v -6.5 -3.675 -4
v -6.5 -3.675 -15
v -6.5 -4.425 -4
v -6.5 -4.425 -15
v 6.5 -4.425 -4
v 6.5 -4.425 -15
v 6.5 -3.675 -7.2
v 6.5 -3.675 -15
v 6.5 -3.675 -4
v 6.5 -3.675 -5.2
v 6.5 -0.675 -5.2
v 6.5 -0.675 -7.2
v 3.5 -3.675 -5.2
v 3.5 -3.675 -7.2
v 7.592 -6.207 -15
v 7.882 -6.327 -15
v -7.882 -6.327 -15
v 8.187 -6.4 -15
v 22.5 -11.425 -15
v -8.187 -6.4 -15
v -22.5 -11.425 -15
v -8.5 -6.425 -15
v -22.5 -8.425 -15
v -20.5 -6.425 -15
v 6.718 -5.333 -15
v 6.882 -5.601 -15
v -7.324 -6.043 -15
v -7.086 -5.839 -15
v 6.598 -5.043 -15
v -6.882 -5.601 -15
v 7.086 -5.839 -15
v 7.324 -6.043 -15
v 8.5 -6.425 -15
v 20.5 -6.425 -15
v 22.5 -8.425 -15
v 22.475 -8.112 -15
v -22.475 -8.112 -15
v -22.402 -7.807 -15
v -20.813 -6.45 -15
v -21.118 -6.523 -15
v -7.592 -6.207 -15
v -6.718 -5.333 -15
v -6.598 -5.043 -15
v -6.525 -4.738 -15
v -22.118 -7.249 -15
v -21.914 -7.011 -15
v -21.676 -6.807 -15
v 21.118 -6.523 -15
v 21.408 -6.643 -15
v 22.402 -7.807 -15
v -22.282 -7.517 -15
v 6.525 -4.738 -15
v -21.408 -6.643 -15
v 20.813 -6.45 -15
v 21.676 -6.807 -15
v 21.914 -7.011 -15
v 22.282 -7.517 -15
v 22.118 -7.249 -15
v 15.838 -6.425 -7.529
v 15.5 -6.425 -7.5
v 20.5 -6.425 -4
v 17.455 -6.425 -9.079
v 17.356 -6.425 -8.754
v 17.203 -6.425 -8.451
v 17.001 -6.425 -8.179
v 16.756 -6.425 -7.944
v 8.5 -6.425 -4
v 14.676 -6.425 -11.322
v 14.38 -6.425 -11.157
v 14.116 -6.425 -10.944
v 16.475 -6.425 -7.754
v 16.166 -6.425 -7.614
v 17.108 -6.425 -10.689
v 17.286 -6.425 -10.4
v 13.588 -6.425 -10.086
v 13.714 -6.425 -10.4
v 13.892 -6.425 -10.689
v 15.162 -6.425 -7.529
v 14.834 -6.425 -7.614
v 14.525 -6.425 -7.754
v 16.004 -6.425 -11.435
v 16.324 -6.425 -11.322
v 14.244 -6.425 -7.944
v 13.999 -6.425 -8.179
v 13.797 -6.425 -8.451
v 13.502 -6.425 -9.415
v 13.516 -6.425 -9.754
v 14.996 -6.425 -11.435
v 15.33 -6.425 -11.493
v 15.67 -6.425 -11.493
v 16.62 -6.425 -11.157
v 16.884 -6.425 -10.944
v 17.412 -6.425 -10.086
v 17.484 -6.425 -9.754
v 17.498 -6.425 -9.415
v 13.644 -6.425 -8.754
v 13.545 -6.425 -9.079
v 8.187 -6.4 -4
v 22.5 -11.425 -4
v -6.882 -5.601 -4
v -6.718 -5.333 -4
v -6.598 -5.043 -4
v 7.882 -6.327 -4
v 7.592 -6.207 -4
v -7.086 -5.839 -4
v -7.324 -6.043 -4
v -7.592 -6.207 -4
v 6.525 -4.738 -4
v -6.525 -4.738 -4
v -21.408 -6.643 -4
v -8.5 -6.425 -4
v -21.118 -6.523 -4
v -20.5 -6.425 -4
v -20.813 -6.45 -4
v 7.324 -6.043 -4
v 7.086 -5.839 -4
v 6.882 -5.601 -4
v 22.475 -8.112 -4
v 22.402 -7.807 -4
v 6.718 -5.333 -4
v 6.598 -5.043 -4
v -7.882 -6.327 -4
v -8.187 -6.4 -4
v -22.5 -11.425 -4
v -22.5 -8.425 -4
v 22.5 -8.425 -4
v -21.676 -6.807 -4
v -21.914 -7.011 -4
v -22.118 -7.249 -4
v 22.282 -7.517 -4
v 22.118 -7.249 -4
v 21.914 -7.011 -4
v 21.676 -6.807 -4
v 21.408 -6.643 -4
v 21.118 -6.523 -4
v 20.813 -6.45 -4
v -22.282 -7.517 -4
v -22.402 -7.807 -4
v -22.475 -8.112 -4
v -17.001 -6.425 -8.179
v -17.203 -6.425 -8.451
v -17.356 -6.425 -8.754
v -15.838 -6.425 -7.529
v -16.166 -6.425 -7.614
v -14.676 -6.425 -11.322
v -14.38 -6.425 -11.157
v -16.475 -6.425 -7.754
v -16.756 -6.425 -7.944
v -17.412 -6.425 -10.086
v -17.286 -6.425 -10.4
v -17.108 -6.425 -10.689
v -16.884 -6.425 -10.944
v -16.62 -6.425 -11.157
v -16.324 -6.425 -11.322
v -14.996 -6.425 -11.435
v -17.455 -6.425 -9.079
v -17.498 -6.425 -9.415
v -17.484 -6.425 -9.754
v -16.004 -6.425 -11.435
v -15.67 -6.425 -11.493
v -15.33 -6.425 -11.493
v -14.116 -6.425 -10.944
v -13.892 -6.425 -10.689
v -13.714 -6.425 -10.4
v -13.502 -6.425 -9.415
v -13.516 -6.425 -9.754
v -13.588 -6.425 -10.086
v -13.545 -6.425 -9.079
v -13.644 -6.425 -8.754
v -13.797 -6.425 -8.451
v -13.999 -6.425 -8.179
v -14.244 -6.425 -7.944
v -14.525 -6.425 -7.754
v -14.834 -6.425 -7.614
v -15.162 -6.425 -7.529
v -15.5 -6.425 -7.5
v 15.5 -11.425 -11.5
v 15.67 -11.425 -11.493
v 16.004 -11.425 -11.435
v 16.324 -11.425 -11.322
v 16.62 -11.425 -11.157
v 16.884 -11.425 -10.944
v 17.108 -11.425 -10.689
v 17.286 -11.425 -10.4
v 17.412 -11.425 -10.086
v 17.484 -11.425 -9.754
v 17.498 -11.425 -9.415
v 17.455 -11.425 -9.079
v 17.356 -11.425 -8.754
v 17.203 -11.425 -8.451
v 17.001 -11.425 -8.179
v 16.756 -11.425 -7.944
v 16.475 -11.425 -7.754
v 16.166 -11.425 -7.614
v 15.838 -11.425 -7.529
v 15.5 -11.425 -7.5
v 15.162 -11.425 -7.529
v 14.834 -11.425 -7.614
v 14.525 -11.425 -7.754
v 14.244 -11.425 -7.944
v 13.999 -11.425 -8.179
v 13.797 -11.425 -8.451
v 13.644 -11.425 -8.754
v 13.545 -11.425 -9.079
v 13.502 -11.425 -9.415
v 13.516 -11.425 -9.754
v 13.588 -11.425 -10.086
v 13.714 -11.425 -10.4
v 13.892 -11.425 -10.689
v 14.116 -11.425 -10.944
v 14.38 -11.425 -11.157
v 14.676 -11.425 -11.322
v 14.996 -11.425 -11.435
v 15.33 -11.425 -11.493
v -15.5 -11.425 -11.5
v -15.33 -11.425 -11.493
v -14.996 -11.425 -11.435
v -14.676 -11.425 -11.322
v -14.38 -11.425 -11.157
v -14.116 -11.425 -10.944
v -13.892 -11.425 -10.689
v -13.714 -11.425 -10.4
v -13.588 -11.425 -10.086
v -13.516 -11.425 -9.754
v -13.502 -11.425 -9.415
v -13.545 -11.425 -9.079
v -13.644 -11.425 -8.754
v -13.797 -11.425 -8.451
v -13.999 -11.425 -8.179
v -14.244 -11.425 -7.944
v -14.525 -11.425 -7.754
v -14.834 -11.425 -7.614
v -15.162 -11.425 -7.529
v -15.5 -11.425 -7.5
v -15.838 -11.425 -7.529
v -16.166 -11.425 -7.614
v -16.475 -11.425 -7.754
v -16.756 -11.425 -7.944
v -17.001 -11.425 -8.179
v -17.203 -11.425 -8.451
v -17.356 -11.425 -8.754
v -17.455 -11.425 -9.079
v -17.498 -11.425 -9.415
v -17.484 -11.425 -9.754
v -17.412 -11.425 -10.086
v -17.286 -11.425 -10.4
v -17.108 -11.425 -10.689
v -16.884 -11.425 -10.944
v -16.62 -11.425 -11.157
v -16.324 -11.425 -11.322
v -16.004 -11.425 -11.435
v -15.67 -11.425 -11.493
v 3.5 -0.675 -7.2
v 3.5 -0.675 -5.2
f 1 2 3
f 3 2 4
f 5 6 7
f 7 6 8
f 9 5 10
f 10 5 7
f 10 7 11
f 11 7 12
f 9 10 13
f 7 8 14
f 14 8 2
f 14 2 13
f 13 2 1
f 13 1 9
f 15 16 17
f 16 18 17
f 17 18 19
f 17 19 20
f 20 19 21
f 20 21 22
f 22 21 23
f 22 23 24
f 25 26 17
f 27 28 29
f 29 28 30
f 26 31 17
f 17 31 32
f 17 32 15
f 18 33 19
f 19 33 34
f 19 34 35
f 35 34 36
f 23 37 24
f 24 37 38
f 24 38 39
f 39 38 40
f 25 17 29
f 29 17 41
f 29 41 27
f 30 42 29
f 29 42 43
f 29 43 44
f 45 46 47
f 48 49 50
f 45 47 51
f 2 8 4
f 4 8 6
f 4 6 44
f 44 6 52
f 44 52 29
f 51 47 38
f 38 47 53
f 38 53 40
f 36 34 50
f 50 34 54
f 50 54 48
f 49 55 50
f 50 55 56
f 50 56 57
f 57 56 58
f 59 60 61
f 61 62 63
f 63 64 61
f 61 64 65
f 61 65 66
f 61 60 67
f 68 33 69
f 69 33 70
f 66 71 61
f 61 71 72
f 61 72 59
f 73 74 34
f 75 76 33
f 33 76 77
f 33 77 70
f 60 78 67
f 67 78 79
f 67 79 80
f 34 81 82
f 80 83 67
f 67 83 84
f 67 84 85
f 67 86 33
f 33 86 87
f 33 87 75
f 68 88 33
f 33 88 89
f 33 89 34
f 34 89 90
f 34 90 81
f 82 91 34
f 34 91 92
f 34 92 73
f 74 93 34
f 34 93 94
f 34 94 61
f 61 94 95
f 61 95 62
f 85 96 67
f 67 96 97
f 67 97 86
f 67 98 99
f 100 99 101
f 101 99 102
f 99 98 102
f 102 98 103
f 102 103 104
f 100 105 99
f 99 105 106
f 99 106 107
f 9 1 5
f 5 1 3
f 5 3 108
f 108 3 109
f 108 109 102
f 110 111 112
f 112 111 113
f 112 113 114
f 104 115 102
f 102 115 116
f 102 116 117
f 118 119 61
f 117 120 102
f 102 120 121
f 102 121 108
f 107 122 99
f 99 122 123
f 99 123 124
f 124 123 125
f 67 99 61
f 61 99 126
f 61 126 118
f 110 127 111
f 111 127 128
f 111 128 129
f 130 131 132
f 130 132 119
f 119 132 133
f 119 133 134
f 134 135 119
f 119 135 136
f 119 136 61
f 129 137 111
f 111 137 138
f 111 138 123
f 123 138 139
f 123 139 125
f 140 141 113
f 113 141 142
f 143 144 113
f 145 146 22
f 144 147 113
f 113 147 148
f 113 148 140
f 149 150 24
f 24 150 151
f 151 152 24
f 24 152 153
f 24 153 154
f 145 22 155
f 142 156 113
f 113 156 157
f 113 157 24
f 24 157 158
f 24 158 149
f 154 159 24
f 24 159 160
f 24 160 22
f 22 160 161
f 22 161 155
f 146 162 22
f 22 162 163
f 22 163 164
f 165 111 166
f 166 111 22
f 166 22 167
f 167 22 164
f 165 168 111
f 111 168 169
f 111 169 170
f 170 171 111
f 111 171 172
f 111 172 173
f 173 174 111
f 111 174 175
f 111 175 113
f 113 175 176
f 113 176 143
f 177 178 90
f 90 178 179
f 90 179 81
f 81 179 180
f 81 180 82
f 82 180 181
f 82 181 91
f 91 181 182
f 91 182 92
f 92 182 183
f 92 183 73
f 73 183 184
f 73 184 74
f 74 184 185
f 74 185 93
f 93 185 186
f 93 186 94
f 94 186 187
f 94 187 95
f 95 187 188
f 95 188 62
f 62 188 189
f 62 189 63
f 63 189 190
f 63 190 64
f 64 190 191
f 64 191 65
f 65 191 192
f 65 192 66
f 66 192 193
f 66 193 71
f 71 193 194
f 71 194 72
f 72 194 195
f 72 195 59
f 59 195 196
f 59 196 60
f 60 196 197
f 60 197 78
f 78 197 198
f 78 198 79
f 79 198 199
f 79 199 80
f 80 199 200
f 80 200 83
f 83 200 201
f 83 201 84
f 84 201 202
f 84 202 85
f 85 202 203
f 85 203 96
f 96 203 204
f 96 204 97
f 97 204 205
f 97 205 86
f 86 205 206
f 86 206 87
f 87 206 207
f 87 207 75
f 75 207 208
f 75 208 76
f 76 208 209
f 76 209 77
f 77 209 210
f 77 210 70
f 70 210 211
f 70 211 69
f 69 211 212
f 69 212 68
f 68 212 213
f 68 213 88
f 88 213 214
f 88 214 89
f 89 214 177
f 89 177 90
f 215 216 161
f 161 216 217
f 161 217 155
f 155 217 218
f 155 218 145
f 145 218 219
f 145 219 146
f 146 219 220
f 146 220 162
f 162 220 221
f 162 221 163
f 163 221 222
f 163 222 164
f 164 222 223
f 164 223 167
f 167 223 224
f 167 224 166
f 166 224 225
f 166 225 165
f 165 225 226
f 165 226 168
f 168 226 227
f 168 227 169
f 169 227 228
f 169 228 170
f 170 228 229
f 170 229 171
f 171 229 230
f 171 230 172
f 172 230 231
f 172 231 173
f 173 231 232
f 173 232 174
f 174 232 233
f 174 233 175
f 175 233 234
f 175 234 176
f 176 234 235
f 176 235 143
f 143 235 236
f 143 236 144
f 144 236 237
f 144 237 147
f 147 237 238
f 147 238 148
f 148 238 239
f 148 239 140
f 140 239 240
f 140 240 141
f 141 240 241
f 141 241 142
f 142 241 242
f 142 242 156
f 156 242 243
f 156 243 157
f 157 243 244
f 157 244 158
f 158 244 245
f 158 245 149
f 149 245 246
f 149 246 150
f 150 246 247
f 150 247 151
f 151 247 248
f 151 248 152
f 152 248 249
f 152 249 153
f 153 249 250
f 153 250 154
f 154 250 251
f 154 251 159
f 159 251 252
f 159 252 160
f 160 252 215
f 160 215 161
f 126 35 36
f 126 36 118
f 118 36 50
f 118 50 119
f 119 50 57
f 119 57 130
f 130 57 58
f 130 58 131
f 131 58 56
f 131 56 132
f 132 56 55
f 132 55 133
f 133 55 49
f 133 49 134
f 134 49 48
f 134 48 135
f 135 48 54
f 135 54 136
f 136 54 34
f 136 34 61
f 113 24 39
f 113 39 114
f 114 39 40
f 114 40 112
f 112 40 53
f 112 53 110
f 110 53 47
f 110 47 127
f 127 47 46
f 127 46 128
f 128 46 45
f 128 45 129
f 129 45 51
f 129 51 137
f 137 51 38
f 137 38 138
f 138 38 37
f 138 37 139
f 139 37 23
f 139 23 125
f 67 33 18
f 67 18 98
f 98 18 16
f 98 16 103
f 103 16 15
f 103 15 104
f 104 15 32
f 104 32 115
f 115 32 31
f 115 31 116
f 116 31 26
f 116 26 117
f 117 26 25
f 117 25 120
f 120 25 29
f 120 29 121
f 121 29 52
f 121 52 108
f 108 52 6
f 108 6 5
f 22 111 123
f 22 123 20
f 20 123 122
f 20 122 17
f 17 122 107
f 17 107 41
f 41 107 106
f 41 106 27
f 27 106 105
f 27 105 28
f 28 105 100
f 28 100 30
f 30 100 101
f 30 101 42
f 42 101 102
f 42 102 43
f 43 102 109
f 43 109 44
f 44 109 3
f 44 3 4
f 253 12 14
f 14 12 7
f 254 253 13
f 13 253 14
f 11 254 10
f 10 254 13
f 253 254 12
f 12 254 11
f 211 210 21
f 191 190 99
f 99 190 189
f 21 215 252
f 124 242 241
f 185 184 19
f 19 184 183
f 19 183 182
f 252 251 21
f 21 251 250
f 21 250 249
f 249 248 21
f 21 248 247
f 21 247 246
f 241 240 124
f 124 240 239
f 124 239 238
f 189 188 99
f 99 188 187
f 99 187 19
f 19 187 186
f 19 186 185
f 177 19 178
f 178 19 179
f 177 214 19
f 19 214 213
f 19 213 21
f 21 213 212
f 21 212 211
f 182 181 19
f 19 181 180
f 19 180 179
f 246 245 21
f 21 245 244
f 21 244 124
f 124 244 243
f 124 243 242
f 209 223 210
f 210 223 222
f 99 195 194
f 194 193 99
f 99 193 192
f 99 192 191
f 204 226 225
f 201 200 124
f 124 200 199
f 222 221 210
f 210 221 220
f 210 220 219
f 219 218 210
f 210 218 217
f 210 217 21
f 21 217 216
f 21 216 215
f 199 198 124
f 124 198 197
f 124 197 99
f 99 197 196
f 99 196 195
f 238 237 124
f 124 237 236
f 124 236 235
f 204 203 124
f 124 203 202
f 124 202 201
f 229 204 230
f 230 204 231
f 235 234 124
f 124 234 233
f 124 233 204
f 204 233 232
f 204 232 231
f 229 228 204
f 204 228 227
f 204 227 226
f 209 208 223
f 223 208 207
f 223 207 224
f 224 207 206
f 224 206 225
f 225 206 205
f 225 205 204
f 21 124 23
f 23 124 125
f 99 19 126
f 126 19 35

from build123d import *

# Parameters (mm, degrees)
BOSS_EXTRUDE1_DEPTH      = 2
SKETCH2_R                = 1
CUT_EXTRUDE1_DEPTH       = 11.827309223
CUT_EXTRUDE2_DEPTH       = 11.827309223
BOSS_EXTRUDE3_DEPTH      = 15
BOSS_EXTRUDE3_DEPTH_BACK = 2
SKETCH4_W                = 13
SKETCH4_H                = 4.75
SKETCH6_W                = 11
SKETCH6_H                = 2
BOSS_EXTRUDE4_DEPTH      = 16
SKETCH7_W                = 11
SKETCH7_H                = 2
BOSS_EXTRUDE5_DEPTH      = 16
SKETCH8_R                = 2
CUT_EXTRUDE3_DEPTH       = 31.850810362
FILLET5_R                = 2
FILLET6_R                = 2
FILLET7_R                = 2
FILLET8_R                = 2
SKETCH10_W               = 2
SKETCH10_H               = 16.939290608
CUT_EXTRUDE4_DEPTH       = 34.719143302
SKETCH11_W               = 13
SKETCH11_H               = 6
CUT_EXTRUDE5_DEPTH       = 28.45564605
SKETCH12_W               = 3
SKETCH12_H               = 2
BOSS_EXTRUDE6_DEPTH      = 3
SKETCH13_W               = 45
SKETCH13_H               = 11
SKETCH13_R               = 2
BOSS_EXTRUDE7_DEPTH      = 3


with BuildPart() as part:
    # Sketch1 → Boss-Extrude1 (new body)
    with BuildSketch(Plane.XY):
        with BuildLine():
            Line((-5.5, -8.425), (5.5, -8.425))
            ThreePointArc((5.5, -8.425), (6.207106781, -8.132106781), (6.5, -7.425))
            Line((6.5, -7.425), (6.5, 7.425))
            ThreePointArc((6.5, 7.425), (6.207106781, 8.132106781), (5.5, 8.425))
            Line((5.5, 8.425), (-5.5, 8.425))
            ThreePointArc((-5.5, 8.425), (-6.207106781, 8.132106781), (-6.5, 7.425))
            Line((-6.5, 7.425), (-6.5, -7.425))
            ThreePointArc((-6.5, -7.425), (-6.207106781, -8.132106781), (-5.5, -8.425))
        make_face()
    extrude(amount=BOSS_EXTRUDE1_DEPTH)

    # Sketch2 → Cut-Extrude1 (cut, through all)
    with BuildSketch(Plane.XY.offset(2)):
        with Locations((0, 6.75)):
            Circle(SKETCH2_R)
        with Locations((0, -2)):
            Circle(SKETCH2_R)
    extrude(amount=-CUT_EXTRUDE1_DEPTH, mode=Mode.SUBTRACT)

    # Sketch3 → Cut-Extrude2 (cut, through all)
    with BuildSketch(Plane.XY.offset(2)):
        with BuildLine():
            Line((1.8, 2.875), (1.8, 1.875))
            ThreePointArc((1.8, 1.875), (0, 0.075), (-1.8, 1.875))
            Line((-1.8, 1.875), (-1.8, 2.875))
            ThreePointArc((-1.8, 2.875), (0, 4.675), (1.8, 2.875))
        make_face()
    extrude(amount=-CUT_EXTRUDE2_DEPTH, mode=Mode.SUBTRACT)

    # Sketch4 → Boss-Extrude3 (add, two sides: drawn at the far end of the back side and taken through both)
    with BuildSketch(Plane(origin=(0, 0, 0), x_dir=(-1, 0, 0), z_dir=(0, 0, -1)).offset(-BOSS_EXTRUDE3_DEPTH_BACK)):
        with Locations((0, -6.05)):
            Rectangle(SKETCH4_W, SKETCH4_H)
    extrude(amount=BOSS_EXTRUDE3_DEPTH + BOSS_EXTRUDE3_DEPTH_BACK)

    # Sketch6 → Boss-Extrude4 (add)
    with BuildSketch(Plane(origin=(6.5, 0, 0), x_dir=(0, 0, -1), z_dir=(1, 0, 0))):
        with Locations((9.5, -7.425)):
            Rectangle(SKETCH6_W, SKETCH6_H)
    extrude(amount=BOSS_EXTRUDE4_DEPTH)

    # Sketch7 → Boss-Extrude5 (add)
    with BuildSketch(Plane.ZY.offset(6.5)):
        with Locations((-9.5, -7.425)):
            Rectangle(SKETCH7_W, SKETCH7_H)
    extrude(amount=BOSS_EXTRUDE5_DEPTH)

    # Sketch8 → Cut-Extrude3 (cut, through all)
    with BuildSketch(Plane(origin=(0, -6.425, 0), x_dir=(1, 0, 0), z_dir=(0, 1, 0))):
        with Locations(Location((15.5, 9.5, 0), (0, 0, 270))):
            Circle(SKETCH8_R)
        with Locations(Location((-15.5, 9.5, 0), (0, 0, 270))):
            Circle(SKETCH8_R)
    extrude(amount=-CUT_EXTRUDE3_DEPTH, mode=Mode.SUBTRACT)

    # Fillet5
    fillet5_edges = [part.edges().sort_by_distance(p)[0] for p in [
        (22.5, -6.425, -9.5),
    ]]
    fillet(fillet5_edges, radius=FILLET5_R - 0.0001)  # a hair under: the kernel refuses the full size

    # Fillet6
    fillet6_edges = [part.edges().sort_by_distance(p)[0] for p in [
        (-22.5, -6.425, -9.5),
    ]]
    fillet(fillet6_edges, radius=FILLET6_R - 0.0001)  # a hair under: the kernel refuses the full size

    # Fillet7
    fillet7_edges = [part.edges().sort_by_distance(p)[0] for p in [
        (6.5, -6.425, -9.5),
    ]]
    fillet(fillet7_edges, radius=FILLET7_R)

    # Fillet8
    fillet8_edges = [part.edges().sort_by_distance(p)[0] for p in [
        (-6.5, -6.425, -9.5),
    ]]
    fillet(fillet8_edges, radius=FILLET8_R)

    # Sketch10 → Cut-Extrude4 (cut, through all)
    with BuildSketch(Plane(origin=(6.5, 0, 0), x_dir=(0, 0, -1), z_dir=(1, 0, 0))):
        with Locations((-1, 4.794645304)):
            Rectangle(SKETCH10_W, SKETCH10_H)
    extrude(amount=-CUT_EXTRUDE4_DEPTH, mode=Mode.SUBTRACT)

    # Sketch11 → Cut-Extrude5 (cut, through all)
    with BuildSketch(Plane(origin=(0, -3.675, 0), x_dir=(1, 0, 0), z_dir=(0, 1, 0))):
        with Locations((0, 1)):
            Rectangle(SKETCH11_W, SKETCH11_H)
    extrude(amount=-CUT_EXTRUDE5_DEPTH, mode=Mode.SUBTRACT)

    # Sketch12 → Boss-Extrude6 (add)
    with BuildSketch(Plane(origin=(0, -3.675, 0), x_dir=(1, 0, 0), z_dir=(0, 1, 0))):
        with Locations((5, 6.2)):
            Rectangle(SKETCH12_W, SKETCH12_H)
    extrude(amount=BOSS_EXTRUDE6_DEPTH)

    # Sketch13 → Boss-Extrude7 (add)
    with BuildSketch(Plane.XZ.offset(8.425)):
        with Locations((0, -9.5)):
            Rectangle(SKETCH13_W, SKETCH13_H)
        with Locations(Location((-15.5, -9.5, 0), (0, 0, 90))):
            Circle(SKETCH13_R, mode=Mode.SUBTRACT)
        with Locations(Location((15.5, -9.5, 0), (0, 0, 90))):
            Circle(SKETCH13_R, mode=Mode.SUBTRACT)
    extrude(amount=BOSS_EXTRUDE7_DEPTH)


solid = part.part
